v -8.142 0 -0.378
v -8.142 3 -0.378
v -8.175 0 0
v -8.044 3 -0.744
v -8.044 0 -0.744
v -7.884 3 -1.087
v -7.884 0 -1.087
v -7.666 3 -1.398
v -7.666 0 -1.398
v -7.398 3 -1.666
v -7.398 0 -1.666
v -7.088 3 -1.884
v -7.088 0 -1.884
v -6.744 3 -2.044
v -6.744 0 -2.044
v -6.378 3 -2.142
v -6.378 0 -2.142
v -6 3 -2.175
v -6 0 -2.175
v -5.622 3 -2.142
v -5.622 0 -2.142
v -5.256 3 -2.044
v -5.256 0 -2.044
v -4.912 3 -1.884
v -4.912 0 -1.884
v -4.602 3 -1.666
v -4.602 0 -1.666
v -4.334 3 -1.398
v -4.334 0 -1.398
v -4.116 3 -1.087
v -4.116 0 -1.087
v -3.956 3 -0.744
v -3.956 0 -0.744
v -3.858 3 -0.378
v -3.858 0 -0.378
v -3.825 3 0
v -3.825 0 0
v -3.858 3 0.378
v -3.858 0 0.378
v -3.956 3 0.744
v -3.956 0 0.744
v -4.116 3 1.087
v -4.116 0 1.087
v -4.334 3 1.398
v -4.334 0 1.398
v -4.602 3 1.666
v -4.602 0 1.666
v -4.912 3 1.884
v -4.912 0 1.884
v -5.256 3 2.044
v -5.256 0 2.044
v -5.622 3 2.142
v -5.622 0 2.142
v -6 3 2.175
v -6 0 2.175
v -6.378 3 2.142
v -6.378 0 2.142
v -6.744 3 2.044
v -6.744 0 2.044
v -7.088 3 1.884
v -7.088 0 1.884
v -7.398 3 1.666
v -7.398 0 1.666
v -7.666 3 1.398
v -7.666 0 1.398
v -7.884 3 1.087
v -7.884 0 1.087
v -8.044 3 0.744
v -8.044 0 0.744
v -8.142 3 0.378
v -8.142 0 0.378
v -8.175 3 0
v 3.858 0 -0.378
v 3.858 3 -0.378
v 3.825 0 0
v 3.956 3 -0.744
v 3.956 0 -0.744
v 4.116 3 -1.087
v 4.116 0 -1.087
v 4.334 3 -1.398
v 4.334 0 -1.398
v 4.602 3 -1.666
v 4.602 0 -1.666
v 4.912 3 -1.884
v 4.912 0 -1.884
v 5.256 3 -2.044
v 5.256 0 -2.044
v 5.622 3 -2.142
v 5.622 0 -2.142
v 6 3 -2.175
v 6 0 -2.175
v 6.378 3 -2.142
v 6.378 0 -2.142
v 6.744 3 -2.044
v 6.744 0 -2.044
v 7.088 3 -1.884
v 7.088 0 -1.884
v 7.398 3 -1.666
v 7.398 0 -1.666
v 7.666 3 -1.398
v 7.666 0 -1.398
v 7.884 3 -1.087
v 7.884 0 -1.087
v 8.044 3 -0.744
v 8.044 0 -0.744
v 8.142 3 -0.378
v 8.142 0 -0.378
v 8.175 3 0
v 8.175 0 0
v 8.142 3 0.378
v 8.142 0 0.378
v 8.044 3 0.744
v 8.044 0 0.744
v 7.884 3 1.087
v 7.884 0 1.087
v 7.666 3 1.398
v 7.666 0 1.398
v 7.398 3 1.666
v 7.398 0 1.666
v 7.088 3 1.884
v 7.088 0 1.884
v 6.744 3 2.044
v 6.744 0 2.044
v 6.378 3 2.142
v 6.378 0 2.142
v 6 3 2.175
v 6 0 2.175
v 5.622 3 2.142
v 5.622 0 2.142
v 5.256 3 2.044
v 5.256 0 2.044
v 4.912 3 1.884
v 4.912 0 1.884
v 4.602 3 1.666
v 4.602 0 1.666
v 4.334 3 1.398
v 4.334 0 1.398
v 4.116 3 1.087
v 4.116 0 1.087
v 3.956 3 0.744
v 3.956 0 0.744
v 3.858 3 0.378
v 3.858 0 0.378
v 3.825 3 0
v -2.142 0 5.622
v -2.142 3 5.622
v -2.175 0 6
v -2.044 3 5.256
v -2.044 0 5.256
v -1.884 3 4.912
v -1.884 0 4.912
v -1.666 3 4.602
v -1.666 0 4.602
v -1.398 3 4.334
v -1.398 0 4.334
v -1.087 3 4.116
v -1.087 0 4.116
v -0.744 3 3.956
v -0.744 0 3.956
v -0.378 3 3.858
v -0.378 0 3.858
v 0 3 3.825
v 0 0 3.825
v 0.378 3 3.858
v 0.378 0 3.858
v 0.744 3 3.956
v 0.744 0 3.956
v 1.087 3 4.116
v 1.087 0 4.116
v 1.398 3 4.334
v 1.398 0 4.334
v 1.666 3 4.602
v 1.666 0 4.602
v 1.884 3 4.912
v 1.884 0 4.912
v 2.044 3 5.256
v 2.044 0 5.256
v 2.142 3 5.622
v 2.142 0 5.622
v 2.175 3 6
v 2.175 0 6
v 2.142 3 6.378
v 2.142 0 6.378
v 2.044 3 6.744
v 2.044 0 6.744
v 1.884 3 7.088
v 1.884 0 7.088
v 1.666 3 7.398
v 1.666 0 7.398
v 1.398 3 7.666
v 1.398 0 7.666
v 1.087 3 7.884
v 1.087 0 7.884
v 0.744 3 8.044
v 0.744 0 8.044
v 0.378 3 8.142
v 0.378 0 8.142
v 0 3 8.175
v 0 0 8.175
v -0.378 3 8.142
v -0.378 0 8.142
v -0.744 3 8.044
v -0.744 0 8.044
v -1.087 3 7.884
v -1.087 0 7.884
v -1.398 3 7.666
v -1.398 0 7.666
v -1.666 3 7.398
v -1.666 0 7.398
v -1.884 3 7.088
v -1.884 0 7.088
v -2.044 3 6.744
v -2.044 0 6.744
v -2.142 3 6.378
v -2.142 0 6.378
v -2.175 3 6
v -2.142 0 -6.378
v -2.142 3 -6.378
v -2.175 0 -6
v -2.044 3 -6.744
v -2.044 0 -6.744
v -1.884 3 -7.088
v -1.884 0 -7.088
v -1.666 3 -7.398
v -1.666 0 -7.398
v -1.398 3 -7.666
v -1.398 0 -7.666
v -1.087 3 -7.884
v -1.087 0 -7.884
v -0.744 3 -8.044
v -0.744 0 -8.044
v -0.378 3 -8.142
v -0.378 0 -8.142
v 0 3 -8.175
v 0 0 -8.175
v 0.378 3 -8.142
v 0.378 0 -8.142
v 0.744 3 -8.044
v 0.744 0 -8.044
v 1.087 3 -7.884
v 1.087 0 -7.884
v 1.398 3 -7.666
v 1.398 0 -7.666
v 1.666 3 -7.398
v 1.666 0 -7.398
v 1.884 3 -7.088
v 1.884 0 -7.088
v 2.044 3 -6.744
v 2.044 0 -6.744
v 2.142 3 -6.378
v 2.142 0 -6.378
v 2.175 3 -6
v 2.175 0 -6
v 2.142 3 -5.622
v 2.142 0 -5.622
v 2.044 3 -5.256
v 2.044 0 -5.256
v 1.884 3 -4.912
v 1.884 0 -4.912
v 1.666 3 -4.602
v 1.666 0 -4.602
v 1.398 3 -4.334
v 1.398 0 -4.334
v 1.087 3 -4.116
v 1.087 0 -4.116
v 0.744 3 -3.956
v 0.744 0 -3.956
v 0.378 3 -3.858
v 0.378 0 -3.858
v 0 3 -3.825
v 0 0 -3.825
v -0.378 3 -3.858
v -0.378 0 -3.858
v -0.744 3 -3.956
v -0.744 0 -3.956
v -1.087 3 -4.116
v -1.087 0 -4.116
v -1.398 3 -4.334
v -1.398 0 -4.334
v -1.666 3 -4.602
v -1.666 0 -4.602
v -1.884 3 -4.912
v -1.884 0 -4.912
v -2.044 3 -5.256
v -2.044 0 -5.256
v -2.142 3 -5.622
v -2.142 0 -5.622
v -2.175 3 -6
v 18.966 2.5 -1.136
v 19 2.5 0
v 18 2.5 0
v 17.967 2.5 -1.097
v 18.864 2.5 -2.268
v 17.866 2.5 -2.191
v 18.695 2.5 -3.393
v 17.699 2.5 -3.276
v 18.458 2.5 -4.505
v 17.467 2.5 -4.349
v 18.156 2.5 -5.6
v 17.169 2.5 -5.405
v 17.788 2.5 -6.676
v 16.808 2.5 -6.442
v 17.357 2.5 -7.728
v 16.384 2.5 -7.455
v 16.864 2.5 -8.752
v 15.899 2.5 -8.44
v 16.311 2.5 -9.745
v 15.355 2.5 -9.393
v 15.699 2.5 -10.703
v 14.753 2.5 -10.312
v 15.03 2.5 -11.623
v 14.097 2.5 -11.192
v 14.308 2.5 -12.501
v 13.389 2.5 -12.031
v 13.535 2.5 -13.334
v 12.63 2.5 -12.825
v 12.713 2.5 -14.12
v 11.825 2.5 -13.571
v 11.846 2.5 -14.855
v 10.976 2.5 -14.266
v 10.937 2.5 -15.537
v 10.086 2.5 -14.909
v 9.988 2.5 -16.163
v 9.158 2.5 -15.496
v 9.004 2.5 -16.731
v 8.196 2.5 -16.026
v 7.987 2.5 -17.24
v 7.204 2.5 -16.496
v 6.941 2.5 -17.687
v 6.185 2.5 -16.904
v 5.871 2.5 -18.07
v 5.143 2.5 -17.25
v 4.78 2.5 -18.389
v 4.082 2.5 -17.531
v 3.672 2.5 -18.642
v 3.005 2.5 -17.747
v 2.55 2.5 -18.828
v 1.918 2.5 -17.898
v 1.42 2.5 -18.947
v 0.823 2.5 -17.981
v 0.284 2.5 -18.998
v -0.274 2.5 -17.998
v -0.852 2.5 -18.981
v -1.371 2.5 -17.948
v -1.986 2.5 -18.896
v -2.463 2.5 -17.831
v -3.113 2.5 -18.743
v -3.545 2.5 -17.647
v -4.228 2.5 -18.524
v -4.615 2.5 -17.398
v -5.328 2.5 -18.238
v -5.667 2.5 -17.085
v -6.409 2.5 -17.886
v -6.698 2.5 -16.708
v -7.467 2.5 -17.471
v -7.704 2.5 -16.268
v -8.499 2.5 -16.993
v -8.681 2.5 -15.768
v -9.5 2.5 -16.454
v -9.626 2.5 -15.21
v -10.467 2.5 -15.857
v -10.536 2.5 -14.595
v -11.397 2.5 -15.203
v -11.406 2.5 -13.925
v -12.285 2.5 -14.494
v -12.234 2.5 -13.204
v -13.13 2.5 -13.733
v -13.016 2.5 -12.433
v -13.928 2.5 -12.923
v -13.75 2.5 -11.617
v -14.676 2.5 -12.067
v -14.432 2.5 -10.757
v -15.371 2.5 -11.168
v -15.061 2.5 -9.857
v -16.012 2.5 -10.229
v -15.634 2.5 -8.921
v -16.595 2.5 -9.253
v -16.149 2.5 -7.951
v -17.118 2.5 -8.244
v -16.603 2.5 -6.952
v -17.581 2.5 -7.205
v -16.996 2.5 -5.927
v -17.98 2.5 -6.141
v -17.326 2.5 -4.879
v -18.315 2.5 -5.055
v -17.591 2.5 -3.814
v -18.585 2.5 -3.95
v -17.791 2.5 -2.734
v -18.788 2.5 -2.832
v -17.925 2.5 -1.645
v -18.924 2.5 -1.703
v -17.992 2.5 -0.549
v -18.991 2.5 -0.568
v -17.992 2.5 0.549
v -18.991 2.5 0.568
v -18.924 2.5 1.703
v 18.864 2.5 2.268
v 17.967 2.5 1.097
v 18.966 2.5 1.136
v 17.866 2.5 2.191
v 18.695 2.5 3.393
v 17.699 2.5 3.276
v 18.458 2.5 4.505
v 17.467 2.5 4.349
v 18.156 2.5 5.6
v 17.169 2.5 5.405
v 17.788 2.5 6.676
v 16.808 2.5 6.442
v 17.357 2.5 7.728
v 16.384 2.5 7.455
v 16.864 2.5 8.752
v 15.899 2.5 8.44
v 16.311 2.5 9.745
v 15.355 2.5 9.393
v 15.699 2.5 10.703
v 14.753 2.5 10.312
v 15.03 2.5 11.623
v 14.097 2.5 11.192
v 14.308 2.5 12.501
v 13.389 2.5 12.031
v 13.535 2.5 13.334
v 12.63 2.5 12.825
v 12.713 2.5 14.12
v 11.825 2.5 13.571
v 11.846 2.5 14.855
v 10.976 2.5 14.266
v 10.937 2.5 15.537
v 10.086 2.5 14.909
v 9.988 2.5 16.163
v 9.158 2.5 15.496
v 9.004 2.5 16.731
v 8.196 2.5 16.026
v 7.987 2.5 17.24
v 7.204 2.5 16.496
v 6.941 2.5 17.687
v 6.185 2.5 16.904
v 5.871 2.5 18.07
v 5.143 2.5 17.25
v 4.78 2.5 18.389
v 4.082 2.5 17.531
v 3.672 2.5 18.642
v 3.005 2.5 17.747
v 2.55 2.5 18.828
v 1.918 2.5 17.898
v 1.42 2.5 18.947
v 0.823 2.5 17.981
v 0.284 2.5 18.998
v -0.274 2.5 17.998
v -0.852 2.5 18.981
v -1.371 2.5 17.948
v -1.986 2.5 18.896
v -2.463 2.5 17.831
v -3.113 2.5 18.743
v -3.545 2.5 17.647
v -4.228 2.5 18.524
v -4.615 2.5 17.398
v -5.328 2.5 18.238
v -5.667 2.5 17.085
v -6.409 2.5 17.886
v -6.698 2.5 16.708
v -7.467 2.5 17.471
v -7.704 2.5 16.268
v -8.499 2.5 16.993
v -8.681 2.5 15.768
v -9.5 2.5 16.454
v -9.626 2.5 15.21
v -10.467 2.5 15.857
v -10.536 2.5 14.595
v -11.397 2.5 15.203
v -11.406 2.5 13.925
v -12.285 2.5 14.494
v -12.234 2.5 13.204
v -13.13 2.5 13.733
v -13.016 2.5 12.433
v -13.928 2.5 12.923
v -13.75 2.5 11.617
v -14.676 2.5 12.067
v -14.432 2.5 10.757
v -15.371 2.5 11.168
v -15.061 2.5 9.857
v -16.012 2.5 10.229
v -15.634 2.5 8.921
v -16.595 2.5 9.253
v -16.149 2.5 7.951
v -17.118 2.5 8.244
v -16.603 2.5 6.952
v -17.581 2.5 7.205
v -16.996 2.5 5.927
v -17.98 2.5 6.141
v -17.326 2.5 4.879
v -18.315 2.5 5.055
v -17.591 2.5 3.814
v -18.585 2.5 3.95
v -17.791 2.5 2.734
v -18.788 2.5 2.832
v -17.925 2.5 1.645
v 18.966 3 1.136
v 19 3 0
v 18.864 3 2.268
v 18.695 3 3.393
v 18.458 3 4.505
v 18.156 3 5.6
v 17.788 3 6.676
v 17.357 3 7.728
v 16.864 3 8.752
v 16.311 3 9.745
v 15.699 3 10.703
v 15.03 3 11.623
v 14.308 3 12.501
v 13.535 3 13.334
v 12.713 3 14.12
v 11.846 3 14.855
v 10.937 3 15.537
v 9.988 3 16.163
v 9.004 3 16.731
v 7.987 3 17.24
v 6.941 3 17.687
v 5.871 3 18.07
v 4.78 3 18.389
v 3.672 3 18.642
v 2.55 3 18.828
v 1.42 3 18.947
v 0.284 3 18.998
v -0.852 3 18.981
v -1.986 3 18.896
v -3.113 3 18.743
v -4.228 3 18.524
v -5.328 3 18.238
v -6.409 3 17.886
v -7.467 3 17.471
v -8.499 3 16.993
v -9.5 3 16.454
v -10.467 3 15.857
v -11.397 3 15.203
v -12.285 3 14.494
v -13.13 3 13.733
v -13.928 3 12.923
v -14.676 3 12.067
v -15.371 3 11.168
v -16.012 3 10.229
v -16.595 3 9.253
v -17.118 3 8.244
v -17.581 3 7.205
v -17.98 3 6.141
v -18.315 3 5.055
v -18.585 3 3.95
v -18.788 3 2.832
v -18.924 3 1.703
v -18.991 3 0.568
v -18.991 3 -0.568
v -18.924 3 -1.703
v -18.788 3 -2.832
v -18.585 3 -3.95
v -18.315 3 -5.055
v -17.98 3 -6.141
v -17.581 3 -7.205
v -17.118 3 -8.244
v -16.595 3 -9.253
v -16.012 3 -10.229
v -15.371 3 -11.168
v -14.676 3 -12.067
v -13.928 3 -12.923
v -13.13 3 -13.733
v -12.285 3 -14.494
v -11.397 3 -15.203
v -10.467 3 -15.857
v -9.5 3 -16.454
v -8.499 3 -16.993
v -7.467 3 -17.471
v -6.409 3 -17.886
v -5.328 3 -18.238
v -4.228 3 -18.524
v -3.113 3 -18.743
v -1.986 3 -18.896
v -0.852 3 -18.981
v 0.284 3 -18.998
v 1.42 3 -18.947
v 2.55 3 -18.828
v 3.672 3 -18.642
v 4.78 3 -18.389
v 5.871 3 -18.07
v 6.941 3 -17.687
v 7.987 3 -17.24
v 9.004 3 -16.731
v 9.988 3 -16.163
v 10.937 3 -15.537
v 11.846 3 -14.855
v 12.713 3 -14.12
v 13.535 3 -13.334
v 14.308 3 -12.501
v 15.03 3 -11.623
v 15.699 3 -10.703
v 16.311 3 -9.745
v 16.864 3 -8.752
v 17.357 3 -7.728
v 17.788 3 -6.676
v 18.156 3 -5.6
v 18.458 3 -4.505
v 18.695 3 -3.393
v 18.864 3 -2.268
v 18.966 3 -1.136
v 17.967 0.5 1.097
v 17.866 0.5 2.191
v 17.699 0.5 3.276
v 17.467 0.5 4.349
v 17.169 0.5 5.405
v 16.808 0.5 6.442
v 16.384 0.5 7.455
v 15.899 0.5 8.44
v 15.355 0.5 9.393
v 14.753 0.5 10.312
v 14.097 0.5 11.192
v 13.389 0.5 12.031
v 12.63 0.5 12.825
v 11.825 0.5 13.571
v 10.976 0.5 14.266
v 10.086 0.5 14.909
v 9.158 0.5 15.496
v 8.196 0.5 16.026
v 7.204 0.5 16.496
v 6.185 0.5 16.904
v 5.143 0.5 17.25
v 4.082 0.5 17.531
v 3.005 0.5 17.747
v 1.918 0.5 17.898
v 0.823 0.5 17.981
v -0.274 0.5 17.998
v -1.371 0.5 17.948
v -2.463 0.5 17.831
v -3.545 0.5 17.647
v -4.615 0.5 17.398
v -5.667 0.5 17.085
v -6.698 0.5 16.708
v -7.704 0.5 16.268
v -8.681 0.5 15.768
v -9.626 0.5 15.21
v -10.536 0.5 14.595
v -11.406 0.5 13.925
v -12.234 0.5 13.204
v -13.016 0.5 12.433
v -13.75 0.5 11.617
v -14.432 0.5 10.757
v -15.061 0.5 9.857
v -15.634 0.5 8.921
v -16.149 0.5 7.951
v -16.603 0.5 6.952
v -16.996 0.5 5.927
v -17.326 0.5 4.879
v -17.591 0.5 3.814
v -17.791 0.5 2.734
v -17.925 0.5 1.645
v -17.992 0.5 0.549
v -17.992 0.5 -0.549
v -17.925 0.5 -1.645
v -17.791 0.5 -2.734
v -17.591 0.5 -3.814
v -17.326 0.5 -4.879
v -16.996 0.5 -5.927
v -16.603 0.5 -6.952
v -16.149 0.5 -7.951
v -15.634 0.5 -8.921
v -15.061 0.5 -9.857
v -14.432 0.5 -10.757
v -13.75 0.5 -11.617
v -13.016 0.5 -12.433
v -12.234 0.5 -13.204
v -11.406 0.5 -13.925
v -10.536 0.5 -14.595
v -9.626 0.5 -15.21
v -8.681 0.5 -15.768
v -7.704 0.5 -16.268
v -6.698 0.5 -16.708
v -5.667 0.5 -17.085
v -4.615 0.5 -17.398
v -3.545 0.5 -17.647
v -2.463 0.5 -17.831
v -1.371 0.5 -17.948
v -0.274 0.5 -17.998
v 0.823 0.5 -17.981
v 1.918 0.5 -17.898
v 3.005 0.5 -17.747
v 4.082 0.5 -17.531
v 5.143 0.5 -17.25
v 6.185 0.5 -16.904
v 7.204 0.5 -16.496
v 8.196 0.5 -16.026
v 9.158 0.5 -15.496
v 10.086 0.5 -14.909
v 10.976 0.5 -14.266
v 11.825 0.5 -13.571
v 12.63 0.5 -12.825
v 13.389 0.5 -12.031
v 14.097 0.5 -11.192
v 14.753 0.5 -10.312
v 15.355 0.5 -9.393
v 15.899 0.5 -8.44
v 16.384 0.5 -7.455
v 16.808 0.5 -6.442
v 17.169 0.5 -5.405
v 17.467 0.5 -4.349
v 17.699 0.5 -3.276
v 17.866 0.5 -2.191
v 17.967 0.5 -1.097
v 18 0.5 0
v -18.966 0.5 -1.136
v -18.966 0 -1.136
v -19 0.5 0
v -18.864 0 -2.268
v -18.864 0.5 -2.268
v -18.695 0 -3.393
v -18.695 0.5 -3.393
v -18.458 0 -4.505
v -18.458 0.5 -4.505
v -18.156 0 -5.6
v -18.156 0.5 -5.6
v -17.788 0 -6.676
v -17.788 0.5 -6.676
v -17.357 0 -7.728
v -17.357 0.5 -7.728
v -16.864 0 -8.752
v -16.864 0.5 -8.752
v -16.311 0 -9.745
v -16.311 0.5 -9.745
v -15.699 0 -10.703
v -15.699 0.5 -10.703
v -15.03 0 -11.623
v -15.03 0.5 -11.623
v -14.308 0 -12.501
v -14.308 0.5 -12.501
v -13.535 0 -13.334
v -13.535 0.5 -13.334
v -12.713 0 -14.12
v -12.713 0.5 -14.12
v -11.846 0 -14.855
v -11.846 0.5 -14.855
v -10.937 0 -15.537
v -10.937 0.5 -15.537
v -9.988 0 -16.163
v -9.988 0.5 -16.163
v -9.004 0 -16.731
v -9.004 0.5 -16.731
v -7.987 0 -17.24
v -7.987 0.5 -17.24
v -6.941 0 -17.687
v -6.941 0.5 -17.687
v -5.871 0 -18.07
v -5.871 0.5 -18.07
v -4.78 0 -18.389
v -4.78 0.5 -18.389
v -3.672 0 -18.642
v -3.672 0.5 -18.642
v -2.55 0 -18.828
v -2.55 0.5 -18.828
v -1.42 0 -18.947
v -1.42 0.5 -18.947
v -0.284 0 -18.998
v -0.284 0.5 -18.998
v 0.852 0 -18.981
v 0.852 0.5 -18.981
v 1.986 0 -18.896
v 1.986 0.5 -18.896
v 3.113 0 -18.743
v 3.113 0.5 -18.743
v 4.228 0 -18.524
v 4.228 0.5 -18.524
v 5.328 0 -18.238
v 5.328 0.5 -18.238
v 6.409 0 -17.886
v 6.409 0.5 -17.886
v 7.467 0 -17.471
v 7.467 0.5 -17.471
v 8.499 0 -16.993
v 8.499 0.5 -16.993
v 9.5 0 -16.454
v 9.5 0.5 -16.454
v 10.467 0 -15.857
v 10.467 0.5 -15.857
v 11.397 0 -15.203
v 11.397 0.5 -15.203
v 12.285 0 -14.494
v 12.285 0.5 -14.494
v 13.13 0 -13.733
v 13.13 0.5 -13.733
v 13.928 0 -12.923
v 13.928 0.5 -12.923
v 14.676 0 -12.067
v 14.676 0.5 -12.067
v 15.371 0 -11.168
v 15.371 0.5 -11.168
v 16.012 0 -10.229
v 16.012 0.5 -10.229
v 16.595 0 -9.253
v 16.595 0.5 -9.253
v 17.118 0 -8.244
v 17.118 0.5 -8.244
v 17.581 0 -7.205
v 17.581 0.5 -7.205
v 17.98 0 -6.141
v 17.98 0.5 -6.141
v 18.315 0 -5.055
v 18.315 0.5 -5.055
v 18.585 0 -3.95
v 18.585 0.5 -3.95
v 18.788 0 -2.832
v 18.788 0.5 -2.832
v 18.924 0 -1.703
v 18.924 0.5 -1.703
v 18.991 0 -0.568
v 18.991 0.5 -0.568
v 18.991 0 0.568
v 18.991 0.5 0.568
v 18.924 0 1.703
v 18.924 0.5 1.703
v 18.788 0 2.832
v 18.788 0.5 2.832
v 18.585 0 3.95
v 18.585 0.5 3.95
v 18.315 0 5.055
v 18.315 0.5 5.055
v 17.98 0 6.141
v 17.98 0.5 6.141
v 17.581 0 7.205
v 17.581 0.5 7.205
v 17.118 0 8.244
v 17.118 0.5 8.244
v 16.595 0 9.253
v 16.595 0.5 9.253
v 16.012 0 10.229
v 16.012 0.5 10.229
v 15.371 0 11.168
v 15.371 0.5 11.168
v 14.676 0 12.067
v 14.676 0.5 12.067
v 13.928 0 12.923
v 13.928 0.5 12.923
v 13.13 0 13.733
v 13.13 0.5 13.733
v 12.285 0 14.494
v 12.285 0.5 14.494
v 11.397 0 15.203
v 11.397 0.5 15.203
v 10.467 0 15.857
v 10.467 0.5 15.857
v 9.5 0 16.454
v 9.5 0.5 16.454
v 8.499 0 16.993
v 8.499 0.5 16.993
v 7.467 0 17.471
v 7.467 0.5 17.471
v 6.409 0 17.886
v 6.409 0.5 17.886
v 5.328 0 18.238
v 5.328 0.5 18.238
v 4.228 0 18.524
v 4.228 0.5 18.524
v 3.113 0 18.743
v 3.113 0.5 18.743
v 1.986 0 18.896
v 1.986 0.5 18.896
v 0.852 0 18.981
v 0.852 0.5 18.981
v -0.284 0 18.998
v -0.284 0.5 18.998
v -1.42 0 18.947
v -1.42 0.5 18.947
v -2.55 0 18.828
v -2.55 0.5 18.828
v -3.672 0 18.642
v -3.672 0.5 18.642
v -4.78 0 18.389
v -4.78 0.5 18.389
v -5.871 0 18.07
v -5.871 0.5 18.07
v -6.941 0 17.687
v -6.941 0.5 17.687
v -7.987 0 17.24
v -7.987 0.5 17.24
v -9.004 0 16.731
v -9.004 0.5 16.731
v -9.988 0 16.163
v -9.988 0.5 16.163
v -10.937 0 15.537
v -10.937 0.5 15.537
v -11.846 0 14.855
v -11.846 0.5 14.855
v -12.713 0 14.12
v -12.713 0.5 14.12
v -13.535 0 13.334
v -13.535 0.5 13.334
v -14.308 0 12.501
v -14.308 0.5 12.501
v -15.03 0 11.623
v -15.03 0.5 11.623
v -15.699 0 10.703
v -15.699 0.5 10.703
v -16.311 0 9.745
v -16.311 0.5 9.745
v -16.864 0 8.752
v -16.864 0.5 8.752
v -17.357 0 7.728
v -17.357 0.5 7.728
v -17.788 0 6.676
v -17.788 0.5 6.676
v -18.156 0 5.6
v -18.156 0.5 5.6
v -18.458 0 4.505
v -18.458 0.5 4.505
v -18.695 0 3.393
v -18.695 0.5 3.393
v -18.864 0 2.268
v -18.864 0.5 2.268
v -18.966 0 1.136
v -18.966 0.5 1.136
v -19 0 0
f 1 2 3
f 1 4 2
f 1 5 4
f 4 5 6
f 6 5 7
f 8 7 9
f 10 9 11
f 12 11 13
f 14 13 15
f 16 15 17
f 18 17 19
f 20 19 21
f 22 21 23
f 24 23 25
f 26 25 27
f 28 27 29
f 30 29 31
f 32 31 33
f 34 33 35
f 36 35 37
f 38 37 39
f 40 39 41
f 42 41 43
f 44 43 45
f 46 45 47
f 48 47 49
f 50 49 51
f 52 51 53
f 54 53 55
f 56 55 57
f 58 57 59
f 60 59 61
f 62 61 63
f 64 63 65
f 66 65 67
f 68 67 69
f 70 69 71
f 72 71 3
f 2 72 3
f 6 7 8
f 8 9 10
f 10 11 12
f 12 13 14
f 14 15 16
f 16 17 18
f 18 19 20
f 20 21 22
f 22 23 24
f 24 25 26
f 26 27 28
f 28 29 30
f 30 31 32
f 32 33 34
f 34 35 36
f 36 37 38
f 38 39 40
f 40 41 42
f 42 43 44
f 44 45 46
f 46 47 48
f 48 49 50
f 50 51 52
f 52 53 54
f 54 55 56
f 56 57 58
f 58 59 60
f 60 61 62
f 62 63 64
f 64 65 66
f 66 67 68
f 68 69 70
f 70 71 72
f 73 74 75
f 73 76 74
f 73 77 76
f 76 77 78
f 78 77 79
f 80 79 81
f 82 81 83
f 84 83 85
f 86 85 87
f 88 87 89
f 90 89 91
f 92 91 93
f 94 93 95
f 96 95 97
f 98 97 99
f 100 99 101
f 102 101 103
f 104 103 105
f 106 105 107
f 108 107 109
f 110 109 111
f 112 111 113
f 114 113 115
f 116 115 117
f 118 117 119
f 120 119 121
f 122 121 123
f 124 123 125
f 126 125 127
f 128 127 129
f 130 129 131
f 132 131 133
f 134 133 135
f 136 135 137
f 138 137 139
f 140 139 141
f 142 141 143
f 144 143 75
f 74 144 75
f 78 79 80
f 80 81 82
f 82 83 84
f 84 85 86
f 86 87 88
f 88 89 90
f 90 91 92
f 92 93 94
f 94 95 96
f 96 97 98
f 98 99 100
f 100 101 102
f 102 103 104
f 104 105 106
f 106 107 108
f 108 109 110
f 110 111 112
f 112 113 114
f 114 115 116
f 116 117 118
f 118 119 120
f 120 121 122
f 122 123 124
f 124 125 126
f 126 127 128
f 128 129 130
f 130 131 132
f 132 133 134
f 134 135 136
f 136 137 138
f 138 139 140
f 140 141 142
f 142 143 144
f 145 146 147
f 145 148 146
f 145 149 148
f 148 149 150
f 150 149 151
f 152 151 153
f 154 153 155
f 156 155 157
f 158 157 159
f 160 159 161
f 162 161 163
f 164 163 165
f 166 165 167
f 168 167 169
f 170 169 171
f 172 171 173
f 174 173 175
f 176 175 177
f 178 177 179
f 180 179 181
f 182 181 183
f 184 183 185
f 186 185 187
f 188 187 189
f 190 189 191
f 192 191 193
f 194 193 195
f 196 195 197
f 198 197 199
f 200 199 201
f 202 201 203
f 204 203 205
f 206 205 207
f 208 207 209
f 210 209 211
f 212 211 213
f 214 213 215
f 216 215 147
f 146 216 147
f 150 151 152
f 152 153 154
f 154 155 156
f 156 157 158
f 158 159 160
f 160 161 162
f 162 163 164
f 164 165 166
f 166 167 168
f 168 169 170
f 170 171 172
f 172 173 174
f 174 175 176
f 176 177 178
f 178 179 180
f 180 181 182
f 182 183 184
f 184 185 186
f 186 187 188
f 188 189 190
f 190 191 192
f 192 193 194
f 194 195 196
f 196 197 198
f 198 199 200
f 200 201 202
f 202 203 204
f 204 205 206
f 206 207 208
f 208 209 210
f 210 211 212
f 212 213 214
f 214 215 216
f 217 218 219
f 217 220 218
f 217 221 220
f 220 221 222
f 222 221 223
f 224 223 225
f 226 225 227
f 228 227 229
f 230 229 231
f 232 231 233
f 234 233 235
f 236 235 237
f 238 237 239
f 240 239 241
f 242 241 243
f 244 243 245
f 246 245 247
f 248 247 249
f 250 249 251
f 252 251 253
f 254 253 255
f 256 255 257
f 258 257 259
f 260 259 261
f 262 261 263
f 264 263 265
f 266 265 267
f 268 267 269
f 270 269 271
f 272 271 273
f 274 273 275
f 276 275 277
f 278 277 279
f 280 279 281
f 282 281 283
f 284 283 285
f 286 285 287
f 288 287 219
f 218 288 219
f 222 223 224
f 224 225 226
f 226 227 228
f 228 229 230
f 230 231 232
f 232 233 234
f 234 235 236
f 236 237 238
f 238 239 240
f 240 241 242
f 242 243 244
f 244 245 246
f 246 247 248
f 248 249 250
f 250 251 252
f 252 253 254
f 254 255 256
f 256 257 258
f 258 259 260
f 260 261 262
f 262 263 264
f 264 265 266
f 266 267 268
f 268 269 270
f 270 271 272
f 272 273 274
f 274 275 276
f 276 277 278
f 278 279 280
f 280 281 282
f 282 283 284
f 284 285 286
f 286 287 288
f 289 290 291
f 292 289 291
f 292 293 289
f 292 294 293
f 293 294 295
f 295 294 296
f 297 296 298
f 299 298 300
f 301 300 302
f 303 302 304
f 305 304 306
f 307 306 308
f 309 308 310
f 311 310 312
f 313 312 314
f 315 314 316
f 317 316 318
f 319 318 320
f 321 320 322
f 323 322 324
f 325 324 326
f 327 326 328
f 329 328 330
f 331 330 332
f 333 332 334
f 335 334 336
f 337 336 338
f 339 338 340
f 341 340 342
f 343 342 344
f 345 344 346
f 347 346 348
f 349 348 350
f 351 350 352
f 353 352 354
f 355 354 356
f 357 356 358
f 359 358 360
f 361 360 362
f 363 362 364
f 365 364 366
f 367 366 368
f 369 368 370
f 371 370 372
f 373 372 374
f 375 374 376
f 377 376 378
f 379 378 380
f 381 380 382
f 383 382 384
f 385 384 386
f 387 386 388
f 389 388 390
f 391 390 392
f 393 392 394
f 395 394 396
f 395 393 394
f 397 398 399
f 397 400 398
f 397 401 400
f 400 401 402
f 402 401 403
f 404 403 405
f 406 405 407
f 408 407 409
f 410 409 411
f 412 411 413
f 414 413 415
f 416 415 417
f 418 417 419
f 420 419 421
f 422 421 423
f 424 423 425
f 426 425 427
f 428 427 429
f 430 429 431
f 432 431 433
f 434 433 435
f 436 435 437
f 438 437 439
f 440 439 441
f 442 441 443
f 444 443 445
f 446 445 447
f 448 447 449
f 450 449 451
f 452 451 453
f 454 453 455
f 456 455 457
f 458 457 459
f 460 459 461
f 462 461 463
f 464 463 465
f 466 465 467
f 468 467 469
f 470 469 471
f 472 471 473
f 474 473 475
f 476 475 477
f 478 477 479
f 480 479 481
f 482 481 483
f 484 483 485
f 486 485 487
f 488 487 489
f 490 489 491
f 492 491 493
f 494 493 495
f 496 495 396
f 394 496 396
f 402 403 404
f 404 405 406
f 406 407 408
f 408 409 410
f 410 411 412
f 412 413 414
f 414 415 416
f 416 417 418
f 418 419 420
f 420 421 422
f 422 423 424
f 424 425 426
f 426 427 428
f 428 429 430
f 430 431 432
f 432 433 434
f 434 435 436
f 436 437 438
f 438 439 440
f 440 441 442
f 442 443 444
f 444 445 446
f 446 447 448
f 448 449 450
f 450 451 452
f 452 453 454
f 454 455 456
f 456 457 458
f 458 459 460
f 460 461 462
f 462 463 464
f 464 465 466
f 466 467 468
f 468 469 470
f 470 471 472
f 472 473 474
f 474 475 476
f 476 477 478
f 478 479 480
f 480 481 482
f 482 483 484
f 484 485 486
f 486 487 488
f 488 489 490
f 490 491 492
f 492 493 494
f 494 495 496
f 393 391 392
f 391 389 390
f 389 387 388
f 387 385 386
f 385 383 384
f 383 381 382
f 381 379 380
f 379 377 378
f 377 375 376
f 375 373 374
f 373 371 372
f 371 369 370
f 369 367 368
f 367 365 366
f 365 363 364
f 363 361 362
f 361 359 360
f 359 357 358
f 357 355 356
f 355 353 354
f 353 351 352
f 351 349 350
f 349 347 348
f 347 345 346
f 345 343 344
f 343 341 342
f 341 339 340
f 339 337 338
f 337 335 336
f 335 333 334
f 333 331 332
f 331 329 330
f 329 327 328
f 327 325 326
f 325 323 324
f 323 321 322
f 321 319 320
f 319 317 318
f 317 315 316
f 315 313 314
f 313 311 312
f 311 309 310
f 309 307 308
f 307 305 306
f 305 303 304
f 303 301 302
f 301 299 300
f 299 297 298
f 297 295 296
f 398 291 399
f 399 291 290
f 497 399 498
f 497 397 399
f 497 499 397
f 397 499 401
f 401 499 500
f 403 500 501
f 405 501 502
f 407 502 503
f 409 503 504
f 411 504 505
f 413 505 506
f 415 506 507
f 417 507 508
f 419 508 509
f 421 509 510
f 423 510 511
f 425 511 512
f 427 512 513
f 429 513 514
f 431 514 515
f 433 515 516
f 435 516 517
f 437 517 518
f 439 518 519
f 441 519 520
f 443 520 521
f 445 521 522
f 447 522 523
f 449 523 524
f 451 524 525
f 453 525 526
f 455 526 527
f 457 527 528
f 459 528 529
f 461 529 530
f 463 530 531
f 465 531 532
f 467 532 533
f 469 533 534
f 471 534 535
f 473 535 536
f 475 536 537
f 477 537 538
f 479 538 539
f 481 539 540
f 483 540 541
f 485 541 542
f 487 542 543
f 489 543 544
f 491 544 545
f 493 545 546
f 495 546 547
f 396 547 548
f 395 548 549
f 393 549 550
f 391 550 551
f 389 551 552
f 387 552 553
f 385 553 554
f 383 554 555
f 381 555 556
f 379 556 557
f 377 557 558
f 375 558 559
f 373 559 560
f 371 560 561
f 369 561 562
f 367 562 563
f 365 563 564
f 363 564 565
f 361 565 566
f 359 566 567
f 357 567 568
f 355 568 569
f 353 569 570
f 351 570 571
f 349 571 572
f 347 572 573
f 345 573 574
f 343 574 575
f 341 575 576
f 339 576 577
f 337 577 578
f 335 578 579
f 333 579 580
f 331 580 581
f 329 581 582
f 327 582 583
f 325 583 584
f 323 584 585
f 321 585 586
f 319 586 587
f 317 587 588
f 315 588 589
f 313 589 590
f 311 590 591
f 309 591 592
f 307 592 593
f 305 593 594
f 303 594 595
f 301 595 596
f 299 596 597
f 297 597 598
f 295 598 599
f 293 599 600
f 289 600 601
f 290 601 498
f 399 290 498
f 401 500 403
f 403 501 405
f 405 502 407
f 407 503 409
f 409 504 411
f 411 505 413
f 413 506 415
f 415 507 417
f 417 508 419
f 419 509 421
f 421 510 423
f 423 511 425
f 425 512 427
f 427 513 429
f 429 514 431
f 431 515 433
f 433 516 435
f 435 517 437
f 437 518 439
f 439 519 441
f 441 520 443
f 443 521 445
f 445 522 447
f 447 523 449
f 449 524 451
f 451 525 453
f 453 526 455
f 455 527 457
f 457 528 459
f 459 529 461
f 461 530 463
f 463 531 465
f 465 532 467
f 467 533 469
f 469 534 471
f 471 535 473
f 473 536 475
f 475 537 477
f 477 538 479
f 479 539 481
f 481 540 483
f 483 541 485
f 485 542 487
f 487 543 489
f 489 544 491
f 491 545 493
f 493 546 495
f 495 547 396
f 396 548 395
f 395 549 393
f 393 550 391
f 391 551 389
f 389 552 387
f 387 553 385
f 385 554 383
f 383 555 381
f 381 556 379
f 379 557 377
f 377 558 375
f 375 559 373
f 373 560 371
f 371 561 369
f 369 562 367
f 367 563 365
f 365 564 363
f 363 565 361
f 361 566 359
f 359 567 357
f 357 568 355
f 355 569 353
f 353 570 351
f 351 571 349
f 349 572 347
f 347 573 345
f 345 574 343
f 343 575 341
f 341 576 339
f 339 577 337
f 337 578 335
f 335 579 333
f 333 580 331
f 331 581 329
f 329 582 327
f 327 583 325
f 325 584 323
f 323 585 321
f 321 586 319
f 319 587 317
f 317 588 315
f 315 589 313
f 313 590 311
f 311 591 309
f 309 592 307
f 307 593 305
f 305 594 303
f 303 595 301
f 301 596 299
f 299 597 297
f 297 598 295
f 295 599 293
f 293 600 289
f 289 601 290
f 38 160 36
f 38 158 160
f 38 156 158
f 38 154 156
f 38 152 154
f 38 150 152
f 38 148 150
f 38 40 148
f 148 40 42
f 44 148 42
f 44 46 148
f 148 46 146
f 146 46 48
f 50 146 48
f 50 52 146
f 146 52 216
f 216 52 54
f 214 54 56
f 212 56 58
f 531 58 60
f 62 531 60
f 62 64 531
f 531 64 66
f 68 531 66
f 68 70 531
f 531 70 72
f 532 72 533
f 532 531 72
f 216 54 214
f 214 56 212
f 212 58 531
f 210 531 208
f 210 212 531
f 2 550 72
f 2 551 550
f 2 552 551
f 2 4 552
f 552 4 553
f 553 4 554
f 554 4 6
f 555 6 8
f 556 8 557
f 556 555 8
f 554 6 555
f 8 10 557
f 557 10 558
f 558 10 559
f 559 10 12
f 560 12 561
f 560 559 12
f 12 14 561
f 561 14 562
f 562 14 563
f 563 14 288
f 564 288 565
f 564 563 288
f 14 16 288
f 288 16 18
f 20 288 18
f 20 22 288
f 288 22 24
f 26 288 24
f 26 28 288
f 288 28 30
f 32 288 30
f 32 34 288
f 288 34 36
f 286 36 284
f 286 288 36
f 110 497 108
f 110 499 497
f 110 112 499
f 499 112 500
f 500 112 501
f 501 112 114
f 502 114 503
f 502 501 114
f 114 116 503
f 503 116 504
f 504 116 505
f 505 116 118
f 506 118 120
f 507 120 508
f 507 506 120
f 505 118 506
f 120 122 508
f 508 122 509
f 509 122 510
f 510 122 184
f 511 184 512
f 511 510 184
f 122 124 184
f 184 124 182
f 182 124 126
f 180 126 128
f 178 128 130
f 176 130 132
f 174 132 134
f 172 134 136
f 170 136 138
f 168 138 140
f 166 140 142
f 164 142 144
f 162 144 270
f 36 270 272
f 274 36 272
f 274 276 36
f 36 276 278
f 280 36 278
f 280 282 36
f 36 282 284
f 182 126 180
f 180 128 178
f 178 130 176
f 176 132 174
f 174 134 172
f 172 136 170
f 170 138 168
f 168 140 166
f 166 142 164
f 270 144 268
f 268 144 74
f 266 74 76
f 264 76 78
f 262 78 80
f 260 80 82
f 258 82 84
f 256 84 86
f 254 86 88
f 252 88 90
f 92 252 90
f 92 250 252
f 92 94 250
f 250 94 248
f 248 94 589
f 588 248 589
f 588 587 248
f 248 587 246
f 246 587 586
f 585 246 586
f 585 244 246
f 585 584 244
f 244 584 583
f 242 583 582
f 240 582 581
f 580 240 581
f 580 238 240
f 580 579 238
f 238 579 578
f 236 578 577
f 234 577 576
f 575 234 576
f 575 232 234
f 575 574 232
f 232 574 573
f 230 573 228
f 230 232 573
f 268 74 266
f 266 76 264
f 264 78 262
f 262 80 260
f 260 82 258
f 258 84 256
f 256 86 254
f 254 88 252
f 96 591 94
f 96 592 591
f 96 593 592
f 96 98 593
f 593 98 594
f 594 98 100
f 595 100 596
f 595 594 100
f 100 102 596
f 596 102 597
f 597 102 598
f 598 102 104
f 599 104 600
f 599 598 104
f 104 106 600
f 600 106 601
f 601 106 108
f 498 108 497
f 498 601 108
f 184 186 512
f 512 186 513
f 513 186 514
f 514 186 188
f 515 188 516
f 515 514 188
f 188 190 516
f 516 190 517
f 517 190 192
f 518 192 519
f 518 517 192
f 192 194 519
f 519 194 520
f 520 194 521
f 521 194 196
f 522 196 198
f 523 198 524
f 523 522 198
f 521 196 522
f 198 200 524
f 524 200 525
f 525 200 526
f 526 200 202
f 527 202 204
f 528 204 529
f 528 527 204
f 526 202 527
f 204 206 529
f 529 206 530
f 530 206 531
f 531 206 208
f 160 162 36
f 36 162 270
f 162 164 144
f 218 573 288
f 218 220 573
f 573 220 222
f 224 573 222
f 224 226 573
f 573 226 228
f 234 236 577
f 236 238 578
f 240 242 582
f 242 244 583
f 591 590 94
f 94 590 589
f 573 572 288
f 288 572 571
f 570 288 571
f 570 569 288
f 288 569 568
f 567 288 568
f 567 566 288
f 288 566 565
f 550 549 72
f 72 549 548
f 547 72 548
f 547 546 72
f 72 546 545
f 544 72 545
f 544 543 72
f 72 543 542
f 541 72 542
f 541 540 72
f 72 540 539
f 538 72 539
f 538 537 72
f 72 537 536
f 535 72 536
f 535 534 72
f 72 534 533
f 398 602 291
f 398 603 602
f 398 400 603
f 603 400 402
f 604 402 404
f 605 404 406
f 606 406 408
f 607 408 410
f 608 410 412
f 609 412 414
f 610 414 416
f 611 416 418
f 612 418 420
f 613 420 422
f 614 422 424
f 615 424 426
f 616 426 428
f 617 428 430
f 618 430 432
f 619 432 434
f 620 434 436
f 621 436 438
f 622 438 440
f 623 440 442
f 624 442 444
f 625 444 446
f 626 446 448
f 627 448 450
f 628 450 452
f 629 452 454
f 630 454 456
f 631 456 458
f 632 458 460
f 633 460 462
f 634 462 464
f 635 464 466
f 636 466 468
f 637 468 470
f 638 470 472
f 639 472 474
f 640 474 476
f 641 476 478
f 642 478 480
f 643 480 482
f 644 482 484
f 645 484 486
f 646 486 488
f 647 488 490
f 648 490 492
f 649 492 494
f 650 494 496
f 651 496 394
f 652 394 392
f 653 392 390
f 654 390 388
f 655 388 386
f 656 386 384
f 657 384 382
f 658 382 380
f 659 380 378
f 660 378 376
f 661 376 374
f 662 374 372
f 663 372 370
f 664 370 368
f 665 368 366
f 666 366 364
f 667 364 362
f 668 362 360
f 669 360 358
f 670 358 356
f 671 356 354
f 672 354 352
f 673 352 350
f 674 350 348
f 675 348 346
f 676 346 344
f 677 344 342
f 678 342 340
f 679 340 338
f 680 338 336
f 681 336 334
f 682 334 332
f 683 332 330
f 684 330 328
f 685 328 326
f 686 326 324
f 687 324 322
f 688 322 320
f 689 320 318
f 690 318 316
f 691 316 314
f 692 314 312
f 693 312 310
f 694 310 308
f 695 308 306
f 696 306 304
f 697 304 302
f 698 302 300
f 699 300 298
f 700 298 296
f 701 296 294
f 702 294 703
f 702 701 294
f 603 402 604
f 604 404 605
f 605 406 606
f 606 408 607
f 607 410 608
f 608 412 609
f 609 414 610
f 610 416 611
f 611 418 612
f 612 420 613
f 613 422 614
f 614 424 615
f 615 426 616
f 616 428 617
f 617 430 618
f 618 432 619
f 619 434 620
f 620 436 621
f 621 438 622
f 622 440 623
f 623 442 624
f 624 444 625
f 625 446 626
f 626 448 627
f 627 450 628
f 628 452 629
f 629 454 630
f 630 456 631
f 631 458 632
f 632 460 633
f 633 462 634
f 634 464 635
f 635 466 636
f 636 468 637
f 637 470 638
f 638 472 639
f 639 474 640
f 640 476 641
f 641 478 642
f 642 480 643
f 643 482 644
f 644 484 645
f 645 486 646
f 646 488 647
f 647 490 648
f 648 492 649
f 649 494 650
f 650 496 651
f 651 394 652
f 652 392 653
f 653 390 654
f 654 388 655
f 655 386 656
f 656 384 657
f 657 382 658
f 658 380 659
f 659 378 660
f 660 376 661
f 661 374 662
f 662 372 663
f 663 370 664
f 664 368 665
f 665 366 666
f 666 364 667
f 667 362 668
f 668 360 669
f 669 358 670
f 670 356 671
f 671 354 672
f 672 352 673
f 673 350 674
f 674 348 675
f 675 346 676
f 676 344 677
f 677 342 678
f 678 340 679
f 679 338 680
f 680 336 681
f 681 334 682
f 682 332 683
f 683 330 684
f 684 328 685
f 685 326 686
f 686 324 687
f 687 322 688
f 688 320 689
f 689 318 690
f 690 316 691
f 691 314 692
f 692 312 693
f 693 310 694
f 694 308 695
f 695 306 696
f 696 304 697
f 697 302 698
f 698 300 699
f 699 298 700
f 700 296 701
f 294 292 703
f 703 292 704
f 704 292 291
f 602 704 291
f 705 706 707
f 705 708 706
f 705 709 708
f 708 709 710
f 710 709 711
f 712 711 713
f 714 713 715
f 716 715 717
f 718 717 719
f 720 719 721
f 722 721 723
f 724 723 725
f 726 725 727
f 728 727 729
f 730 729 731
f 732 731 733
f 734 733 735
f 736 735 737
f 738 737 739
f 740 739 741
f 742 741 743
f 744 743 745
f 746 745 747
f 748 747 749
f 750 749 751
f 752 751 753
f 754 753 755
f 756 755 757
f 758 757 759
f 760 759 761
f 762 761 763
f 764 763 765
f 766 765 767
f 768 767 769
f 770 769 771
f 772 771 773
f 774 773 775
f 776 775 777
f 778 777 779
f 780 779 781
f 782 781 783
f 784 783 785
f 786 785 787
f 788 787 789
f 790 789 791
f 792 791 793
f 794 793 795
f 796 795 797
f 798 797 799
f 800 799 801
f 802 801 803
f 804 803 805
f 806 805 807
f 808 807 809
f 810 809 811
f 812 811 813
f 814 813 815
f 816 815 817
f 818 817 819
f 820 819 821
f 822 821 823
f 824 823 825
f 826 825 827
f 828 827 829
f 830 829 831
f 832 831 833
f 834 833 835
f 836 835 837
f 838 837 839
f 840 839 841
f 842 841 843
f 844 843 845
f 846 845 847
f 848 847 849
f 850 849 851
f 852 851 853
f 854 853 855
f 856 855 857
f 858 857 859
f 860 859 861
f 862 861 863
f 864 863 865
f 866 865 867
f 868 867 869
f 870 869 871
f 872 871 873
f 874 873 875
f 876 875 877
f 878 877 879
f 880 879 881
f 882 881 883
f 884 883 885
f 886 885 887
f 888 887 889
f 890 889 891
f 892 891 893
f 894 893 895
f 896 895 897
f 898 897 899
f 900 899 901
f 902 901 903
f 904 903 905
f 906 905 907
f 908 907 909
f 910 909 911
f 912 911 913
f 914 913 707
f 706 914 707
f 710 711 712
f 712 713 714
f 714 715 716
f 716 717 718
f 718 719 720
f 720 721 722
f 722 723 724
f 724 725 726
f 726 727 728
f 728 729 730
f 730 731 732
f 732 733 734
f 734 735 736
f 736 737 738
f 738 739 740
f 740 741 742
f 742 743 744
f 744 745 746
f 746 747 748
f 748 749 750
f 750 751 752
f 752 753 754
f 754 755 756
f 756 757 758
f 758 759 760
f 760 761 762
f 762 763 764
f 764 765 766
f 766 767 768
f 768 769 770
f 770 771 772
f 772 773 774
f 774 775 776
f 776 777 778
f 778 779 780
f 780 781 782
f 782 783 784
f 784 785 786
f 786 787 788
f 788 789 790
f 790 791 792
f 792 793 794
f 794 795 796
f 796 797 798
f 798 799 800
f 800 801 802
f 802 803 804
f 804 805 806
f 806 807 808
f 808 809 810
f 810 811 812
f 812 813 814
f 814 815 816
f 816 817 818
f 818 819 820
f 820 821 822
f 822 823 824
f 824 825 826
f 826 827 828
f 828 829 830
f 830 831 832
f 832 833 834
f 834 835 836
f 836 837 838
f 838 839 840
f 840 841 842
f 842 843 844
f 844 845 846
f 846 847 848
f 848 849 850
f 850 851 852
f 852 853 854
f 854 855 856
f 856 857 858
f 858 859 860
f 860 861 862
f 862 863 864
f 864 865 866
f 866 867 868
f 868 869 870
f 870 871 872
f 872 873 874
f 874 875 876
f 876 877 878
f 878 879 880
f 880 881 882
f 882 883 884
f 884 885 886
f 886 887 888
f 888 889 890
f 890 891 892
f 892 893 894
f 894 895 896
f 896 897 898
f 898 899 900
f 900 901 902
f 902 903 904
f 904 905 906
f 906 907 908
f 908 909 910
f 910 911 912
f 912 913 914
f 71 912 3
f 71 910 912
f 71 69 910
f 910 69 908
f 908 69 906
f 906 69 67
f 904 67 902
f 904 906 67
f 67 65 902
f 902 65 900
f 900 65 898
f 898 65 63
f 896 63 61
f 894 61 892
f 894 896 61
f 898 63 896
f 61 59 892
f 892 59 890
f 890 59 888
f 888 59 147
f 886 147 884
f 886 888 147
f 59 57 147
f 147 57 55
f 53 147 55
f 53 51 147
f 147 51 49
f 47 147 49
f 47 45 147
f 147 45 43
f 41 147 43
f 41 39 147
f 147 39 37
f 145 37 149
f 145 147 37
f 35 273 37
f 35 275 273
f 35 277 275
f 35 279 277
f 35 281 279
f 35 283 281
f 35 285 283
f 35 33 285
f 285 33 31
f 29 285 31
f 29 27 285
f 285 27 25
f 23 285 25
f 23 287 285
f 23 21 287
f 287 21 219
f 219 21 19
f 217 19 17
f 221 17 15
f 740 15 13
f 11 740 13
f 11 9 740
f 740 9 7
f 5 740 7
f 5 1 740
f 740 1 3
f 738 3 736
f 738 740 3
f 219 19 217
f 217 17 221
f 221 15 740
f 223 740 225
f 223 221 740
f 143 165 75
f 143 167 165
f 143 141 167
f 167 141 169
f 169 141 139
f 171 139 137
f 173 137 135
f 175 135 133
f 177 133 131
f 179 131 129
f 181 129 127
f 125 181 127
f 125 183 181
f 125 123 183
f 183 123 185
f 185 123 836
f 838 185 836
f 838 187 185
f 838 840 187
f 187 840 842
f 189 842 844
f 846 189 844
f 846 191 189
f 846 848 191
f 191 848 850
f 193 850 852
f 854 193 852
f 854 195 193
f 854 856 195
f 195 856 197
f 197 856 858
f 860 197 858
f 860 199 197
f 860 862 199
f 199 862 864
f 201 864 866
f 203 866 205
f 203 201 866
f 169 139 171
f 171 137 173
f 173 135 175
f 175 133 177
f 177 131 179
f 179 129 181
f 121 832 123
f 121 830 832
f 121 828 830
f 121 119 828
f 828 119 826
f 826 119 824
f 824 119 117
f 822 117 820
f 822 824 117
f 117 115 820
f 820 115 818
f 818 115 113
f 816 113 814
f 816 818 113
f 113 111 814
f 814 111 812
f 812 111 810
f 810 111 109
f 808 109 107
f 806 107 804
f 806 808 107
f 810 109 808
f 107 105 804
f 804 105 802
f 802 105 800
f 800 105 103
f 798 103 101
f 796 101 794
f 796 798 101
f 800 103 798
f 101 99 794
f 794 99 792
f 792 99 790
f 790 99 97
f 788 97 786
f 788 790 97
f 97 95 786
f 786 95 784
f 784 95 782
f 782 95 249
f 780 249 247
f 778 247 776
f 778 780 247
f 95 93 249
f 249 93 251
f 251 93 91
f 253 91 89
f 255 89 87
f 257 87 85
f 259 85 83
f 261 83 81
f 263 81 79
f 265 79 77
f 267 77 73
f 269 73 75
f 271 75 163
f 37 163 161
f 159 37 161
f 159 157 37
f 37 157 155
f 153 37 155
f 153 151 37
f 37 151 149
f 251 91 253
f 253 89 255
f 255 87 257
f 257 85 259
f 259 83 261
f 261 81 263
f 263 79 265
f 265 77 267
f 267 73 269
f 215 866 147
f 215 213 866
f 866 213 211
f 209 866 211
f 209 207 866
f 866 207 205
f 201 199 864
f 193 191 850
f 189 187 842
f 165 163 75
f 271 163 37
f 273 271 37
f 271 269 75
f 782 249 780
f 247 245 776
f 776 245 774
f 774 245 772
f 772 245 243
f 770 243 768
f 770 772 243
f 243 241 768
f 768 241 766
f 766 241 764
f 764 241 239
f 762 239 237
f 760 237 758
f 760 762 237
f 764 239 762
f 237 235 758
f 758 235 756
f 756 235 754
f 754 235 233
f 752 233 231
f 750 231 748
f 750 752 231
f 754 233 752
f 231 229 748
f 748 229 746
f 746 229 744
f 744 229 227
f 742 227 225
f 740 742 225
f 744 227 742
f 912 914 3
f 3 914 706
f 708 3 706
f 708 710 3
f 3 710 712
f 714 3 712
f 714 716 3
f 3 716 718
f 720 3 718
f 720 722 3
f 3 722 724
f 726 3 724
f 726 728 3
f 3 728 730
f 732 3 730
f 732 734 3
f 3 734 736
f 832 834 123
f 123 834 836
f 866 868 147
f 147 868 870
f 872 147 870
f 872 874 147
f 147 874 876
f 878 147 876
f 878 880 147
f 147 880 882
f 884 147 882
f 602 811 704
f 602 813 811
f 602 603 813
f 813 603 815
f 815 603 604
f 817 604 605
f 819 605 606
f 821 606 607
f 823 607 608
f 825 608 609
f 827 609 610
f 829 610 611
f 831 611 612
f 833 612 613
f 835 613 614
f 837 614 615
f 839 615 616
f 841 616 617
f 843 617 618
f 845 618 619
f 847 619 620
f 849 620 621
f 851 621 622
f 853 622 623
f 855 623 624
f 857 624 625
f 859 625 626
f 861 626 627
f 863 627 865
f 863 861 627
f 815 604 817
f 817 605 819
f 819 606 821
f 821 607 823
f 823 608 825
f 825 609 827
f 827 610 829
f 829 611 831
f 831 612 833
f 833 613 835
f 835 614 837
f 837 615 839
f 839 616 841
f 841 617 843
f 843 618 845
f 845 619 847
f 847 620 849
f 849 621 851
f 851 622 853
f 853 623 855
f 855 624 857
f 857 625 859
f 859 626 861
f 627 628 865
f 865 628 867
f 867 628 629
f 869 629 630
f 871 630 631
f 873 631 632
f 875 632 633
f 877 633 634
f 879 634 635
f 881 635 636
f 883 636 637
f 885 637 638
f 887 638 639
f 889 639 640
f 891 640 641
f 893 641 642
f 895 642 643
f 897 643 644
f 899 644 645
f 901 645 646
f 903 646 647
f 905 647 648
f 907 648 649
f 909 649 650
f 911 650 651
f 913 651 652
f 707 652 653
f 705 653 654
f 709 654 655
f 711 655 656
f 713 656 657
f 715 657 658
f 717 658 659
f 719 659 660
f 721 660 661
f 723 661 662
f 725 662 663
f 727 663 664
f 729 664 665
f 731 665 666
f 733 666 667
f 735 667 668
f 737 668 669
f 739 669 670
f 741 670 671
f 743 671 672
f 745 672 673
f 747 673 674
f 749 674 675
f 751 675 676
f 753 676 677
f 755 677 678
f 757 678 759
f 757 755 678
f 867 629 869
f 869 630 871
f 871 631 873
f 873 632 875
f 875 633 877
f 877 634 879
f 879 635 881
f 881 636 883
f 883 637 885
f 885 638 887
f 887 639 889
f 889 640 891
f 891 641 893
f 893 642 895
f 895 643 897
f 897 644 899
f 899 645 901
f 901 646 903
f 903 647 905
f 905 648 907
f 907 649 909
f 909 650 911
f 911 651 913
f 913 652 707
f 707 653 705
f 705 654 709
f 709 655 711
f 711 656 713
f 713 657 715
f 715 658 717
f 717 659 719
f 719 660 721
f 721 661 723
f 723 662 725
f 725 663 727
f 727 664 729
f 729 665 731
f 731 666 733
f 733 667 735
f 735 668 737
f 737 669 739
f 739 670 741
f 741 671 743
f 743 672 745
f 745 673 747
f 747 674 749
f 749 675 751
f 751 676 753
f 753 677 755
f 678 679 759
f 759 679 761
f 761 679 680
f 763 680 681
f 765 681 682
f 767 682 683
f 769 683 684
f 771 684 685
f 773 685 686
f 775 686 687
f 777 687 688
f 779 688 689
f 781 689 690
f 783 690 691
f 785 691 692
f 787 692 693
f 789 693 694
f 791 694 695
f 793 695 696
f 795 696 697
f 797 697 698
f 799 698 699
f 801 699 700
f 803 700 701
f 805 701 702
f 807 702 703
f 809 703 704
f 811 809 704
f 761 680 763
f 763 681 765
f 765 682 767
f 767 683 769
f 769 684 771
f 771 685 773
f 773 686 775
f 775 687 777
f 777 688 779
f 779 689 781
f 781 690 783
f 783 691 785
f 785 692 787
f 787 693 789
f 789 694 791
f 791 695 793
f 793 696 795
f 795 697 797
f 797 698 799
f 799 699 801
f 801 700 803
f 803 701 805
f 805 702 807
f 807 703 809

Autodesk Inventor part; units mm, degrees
ref_plane "YZ Plane" through (0, 0, 0) normal (1, 0, 0) x (0, 1, 0)
ref_plane "XZ Plane" through (0, 0, 0) normal (0, 1, 0) x (-1, 0, 0)
ref_plane "XY Plane" through (0, 0, 0) normal (0, 0, 1) x (1, 0, 0)
sketch "Sketch1" plane through (0, 0, 0) normal (0, 1, 0) x (-1, 0, 0)
  circle A0 centre (0, 0) radius 19
  dimension "d0" = 38
extrude "Extrusion1" add sketch "Sketch1" along normal blind 0.5
sketch "Sketch2" plane through (0, 0.5, 0) normal (0, 1, 0) x (1, 0, 0)
  circle A0 centre (0, 0) radius 18
  dimension "d3" = 36
extrude "Extrusion2" add sketch "Sketch2" along normal blind 2
sketch "Sketch3" plane through (0, 2.5, 0) normal (0, 1, 0) x (1, 0, 0)
  circle A0 centre (0, 0) radius 19
  dimension "d23" = 38
extrude "Extrusion3" add sketch "Sketch3" along normal blind 0.5
sketch "Sketch4" plane through (0, 3, 0) normal (0, 1, 0) x (1, 0, 0)
  circle A0 centre (0, -6) radius 2.175
  circle A1 centre (0, 6) radius 2.175
  circle A2 centre (6, 0) radius 2.175
  circle A3 centre (-6, 0) radius 2.175
  point P0 (0, 0)
  dimension "d8" = 4.35
  dimension "d9" = 6
  dimension "d10" = 4.35
  dimension "d11" = 6
  dimension "d12" = 4.35
  dimension "d13" = 6
  dimension "d14" = 4.35
  dimension "d15" = 6
hole "Hole1" at (6, 3, 0) at (0, 3, 6) at (-6, 3, 0) at (0, 3, -6) direction (0, -1, 0) diameter 4.35 end through all
properties part number "wheel"
